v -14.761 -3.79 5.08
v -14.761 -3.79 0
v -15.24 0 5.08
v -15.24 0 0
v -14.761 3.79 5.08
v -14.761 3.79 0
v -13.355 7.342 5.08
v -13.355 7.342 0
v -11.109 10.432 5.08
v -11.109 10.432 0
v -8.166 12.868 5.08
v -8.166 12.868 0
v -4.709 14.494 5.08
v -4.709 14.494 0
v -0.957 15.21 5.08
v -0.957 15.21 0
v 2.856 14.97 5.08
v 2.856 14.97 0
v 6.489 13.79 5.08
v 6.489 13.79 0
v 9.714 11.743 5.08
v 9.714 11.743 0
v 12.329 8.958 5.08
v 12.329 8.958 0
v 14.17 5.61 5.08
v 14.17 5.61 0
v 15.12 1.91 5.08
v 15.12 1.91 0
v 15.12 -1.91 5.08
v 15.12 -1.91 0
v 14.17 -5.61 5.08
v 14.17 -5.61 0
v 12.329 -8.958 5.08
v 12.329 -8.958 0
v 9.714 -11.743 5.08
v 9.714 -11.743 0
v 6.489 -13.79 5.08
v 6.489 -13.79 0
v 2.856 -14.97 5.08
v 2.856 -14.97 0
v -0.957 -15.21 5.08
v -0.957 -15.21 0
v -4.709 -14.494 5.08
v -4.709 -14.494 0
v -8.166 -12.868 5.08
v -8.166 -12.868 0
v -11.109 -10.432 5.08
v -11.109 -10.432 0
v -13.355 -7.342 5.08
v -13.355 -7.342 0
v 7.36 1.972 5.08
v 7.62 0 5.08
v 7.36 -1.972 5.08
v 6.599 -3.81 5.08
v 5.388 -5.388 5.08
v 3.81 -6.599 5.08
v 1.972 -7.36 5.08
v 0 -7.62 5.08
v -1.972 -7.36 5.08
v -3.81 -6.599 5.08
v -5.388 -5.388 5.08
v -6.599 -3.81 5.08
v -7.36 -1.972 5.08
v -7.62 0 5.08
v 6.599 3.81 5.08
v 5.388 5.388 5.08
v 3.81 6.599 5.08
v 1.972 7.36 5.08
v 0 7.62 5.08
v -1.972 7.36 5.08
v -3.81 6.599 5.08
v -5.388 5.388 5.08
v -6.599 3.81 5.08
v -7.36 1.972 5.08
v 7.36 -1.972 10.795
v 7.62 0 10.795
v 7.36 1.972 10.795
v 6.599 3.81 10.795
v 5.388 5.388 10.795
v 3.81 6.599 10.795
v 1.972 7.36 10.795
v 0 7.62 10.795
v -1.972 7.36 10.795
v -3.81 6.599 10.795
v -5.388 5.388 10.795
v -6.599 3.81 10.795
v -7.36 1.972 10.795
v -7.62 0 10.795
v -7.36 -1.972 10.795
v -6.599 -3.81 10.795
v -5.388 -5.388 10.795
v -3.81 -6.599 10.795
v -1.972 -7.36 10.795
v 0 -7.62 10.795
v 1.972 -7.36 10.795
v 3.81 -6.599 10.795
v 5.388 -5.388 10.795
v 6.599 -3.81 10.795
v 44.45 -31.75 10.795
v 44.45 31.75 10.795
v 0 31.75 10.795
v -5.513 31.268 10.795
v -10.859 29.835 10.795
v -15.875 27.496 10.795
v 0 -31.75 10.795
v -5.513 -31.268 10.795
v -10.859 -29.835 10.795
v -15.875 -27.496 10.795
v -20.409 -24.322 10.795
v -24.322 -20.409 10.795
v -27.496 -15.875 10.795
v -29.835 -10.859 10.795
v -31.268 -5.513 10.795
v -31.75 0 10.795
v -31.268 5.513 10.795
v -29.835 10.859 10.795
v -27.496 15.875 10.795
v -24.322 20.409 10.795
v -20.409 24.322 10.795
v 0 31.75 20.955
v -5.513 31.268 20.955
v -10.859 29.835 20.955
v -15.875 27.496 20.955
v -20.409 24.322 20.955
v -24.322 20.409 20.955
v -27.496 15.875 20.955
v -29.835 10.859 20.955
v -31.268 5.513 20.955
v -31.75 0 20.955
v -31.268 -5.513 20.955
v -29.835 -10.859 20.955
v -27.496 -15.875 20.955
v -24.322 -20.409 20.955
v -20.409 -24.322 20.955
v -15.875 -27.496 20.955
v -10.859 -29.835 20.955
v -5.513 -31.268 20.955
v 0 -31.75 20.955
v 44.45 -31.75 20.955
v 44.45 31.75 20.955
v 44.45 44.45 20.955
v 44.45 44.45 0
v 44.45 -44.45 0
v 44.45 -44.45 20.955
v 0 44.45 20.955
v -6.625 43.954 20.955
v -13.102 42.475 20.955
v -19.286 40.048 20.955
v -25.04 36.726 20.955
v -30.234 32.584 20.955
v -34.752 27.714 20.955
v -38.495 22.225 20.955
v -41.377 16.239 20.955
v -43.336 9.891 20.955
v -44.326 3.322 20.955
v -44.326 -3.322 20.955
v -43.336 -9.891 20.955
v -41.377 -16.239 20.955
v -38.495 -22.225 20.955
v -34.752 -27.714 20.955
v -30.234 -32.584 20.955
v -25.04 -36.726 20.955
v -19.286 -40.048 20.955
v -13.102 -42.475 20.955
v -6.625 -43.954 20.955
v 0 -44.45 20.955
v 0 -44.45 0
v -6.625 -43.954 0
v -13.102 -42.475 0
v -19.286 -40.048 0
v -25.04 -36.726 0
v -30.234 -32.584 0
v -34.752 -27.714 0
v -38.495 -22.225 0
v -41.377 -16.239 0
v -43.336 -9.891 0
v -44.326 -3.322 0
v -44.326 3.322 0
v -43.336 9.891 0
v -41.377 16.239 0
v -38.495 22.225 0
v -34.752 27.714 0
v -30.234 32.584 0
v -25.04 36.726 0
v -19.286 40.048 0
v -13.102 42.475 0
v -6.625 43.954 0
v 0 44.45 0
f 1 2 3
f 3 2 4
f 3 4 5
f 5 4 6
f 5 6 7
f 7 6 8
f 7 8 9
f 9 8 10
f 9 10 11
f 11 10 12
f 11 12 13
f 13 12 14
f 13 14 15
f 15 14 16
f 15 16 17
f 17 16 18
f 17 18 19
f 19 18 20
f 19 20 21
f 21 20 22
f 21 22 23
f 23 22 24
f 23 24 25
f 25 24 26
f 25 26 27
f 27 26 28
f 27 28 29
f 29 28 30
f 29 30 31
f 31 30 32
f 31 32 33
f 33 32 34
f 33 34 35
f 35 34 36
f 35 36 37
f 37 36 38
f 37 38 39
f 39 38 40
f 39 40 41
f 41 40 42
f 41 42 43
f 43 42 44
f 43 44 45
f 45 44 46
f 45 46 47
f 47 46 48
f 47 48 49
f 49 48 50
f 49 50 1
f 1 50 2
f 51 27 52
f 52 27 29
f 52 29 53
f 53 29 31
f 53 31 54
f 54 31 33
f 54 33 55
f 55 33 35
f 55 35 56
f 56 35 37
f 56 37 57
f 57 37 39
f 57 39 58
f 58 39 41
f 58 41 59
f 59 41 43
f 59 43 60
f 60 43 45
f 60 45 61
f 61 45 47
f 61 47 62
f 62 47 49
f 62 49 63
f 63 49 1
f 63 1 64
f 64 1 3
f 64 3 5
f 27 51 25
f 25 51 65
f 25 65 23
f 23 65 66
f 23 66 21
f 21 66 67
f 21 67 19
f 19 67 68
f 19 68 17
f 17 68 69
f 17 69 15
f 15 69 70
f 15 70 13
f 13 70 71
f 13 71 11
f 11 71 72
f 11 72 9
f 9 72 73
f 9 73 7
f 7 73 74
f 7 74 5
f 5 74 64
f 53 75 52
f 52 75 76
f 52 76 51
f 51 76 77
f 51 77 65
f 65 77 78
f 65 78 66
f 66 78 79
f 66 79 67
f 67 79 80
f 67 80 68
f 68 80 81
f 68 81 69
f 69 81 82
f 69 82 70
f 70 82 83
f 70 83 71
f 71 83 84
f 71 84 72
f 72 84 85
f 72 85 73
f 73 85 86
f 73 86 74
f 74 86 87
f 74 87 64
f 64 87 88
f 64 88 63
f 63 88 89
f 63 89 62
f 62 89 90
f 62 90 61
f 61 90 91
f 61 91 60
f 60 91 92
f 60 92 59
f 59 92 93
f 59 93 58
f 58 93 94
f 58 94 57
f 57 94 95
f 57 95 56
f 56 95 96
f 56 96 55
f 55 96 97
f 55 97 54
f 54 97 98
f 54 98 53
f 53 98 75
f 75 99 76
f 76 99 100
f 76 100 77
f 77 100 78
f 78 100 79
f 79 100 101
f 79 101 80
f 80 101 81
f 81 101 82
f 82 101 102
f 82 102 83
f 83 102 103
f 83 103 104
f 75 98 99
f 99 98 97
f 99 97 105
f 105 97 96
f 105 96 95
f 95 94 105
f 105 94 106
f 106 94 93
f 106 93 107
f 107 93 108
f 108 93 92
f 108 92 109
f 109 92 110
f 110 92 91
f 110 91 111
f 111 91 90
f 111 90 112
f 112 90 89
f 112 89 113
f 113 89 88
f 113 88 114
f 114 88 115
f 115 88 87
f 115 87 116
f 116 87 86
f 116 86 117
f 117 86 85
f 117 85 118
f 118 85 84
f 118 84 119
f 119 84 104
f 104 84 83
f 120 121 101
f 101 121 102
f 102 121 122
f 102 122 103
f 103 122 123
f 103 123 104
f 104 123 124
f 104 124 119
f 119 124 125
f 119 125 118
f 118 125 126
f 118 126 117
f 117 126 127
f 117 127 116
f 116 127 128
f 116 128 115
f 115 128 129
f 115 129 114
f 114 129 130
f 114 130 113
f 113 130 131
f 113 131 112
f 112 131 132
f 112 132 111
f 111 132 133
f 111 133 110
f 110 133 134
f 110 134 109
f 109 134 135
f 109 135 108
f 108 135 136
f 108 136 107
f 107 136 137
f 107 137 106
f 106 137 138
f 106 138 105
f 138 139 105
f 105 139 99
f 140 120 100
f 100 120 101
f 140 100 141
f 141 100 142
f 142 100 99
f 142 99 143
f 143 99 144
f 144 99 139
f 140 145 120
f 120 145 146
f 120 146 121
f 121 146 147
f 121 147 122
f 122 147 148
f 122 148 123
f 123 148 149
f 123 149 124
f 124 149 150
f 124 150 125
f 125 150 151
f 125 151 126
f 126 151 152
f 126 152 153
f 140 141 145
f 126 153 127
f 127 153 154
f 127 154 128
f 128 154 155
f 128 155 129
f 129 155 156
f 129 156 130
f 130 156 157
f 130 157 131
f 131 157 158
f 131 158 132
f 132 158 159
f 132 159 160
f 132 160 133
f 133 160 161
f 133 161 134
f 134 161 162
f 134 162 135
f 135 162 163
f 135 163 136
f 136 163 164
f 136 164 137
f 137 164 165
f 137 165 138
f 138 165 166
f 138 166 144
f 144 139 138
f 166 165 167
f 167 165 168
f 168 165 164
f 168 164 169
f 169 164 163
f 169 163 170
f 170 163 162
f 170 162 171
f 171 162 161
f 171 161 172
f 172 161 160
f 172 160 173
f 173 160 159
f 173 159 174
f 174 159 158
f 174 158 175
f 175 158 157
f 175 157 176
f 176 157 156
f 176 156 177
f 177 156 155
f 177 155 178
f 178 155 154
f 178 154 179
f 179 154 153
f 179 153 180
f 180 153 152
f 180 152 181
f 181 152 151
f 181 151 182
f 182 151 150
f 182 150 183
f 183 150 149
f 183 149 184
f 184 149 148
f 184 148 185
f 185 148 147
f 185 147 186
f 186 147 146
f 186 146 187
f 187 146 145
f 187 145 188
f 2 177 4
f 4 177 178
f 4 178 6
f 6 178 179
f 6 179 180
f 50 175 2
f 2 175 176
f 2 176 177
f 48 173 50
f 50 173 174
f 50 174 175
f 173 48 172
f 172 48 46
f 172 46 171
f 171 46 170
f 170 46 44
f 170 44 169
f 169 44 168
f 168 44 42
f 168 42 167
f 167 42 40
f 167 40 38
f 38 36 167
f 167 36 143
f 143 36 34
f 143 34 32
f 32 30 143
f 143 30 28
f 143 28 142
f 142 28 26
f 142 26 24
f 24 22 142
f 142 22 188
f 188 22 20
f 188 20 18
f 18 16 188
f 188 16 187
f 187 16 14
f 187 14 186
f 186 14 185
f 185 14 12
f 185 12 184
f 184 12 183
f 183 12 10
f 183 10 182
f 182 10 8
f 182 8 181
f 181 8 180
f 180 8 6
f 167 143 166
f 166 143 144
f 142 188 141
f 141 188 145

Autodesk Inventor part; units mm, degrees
ref_plane "YZ Plane" through (0, 0, 0) normal (1, 0, 0) x (0, 1, 0)
ref_plane "XZ Plane" through (0, 0, 0) normal (0, 1, 0) x (-1, 0, 0)
ref_plane "XY Plane" through (0, 0, 0) normal (0, 0, 1) x (1, 0, 0)
sketch "Sketch1" plane through (0, 0, 0) normal (0, 0, 1) x (1, 0, 0)
  circle A0 centre (0, 0) radius 44.45
  line L0 (0, 44.45) -> (44.45, 44.45)
  line L1 (44.45, 44.45) -> (44.45, -44.45)
  line L2 (44.45, -44.45) -> (0, -44.45)
  line L3 (0, -44.45) -> (0, 44.45)
  dimension "d0" = 88.9
  dimension "d1" = 44.45
  dimension "d2" = 88.9
extrude "Extrusion1" add sketch "Sketch1" along normal blind 20.955
sketch "Sketch2" plane through (0, 0, 20.955) normal (0, 0, 1) x (1, 0, 0)
  arc A0 (0, 44.45) -> (0, -44.45) centre (0, 0) ccw projected
  circle A1 centre (0, 0) radius 31.75
  line L0 (44.45, 44.45) -> (44.45, -44.45) projected
  line L1 (0, 31.75) -> (44.45, 31.75)
  line L2 (44.45, 31.75) -> (44.45, -31.75)
  line L3 (44.45, -31.75) -> (0, -31.75)
  line L4 (0, -31.75) -> (0, 31.75)
  dimension "d5" = 63.5
  dimension "d6" = 63.5
  dimension "d7" = 44.45
extrude "Extrusion2" cut sketch "Sketch2" against normal blind 10.16
sketch "Sketch3" plane through (0, 0, 10.795) normal (0, 0, 1) x (1, 0, 0)
  circle A0 centre (0, 0) radius 7.62
  dimension "d10" = 15.24
extrude "Extrusion3" cut sketch "Sketch3" against normal through all
sketch "Sketch4" plane through (0, 0, 0) normal (0, 0, -1) x (-1, 0, 0)
  circle A0 centre (0, 0) radius 15.24
  dimension "d13" = 30.48
extrude "Extrusion4" cut sketch "Sketch4" against normal blind 5.08
equation "\"d1\" = 0.5 * d0"
equation "\"d2\" = d0"
equation "\"d6\" = d5"
properties part number "Chain Guard rear arm"
